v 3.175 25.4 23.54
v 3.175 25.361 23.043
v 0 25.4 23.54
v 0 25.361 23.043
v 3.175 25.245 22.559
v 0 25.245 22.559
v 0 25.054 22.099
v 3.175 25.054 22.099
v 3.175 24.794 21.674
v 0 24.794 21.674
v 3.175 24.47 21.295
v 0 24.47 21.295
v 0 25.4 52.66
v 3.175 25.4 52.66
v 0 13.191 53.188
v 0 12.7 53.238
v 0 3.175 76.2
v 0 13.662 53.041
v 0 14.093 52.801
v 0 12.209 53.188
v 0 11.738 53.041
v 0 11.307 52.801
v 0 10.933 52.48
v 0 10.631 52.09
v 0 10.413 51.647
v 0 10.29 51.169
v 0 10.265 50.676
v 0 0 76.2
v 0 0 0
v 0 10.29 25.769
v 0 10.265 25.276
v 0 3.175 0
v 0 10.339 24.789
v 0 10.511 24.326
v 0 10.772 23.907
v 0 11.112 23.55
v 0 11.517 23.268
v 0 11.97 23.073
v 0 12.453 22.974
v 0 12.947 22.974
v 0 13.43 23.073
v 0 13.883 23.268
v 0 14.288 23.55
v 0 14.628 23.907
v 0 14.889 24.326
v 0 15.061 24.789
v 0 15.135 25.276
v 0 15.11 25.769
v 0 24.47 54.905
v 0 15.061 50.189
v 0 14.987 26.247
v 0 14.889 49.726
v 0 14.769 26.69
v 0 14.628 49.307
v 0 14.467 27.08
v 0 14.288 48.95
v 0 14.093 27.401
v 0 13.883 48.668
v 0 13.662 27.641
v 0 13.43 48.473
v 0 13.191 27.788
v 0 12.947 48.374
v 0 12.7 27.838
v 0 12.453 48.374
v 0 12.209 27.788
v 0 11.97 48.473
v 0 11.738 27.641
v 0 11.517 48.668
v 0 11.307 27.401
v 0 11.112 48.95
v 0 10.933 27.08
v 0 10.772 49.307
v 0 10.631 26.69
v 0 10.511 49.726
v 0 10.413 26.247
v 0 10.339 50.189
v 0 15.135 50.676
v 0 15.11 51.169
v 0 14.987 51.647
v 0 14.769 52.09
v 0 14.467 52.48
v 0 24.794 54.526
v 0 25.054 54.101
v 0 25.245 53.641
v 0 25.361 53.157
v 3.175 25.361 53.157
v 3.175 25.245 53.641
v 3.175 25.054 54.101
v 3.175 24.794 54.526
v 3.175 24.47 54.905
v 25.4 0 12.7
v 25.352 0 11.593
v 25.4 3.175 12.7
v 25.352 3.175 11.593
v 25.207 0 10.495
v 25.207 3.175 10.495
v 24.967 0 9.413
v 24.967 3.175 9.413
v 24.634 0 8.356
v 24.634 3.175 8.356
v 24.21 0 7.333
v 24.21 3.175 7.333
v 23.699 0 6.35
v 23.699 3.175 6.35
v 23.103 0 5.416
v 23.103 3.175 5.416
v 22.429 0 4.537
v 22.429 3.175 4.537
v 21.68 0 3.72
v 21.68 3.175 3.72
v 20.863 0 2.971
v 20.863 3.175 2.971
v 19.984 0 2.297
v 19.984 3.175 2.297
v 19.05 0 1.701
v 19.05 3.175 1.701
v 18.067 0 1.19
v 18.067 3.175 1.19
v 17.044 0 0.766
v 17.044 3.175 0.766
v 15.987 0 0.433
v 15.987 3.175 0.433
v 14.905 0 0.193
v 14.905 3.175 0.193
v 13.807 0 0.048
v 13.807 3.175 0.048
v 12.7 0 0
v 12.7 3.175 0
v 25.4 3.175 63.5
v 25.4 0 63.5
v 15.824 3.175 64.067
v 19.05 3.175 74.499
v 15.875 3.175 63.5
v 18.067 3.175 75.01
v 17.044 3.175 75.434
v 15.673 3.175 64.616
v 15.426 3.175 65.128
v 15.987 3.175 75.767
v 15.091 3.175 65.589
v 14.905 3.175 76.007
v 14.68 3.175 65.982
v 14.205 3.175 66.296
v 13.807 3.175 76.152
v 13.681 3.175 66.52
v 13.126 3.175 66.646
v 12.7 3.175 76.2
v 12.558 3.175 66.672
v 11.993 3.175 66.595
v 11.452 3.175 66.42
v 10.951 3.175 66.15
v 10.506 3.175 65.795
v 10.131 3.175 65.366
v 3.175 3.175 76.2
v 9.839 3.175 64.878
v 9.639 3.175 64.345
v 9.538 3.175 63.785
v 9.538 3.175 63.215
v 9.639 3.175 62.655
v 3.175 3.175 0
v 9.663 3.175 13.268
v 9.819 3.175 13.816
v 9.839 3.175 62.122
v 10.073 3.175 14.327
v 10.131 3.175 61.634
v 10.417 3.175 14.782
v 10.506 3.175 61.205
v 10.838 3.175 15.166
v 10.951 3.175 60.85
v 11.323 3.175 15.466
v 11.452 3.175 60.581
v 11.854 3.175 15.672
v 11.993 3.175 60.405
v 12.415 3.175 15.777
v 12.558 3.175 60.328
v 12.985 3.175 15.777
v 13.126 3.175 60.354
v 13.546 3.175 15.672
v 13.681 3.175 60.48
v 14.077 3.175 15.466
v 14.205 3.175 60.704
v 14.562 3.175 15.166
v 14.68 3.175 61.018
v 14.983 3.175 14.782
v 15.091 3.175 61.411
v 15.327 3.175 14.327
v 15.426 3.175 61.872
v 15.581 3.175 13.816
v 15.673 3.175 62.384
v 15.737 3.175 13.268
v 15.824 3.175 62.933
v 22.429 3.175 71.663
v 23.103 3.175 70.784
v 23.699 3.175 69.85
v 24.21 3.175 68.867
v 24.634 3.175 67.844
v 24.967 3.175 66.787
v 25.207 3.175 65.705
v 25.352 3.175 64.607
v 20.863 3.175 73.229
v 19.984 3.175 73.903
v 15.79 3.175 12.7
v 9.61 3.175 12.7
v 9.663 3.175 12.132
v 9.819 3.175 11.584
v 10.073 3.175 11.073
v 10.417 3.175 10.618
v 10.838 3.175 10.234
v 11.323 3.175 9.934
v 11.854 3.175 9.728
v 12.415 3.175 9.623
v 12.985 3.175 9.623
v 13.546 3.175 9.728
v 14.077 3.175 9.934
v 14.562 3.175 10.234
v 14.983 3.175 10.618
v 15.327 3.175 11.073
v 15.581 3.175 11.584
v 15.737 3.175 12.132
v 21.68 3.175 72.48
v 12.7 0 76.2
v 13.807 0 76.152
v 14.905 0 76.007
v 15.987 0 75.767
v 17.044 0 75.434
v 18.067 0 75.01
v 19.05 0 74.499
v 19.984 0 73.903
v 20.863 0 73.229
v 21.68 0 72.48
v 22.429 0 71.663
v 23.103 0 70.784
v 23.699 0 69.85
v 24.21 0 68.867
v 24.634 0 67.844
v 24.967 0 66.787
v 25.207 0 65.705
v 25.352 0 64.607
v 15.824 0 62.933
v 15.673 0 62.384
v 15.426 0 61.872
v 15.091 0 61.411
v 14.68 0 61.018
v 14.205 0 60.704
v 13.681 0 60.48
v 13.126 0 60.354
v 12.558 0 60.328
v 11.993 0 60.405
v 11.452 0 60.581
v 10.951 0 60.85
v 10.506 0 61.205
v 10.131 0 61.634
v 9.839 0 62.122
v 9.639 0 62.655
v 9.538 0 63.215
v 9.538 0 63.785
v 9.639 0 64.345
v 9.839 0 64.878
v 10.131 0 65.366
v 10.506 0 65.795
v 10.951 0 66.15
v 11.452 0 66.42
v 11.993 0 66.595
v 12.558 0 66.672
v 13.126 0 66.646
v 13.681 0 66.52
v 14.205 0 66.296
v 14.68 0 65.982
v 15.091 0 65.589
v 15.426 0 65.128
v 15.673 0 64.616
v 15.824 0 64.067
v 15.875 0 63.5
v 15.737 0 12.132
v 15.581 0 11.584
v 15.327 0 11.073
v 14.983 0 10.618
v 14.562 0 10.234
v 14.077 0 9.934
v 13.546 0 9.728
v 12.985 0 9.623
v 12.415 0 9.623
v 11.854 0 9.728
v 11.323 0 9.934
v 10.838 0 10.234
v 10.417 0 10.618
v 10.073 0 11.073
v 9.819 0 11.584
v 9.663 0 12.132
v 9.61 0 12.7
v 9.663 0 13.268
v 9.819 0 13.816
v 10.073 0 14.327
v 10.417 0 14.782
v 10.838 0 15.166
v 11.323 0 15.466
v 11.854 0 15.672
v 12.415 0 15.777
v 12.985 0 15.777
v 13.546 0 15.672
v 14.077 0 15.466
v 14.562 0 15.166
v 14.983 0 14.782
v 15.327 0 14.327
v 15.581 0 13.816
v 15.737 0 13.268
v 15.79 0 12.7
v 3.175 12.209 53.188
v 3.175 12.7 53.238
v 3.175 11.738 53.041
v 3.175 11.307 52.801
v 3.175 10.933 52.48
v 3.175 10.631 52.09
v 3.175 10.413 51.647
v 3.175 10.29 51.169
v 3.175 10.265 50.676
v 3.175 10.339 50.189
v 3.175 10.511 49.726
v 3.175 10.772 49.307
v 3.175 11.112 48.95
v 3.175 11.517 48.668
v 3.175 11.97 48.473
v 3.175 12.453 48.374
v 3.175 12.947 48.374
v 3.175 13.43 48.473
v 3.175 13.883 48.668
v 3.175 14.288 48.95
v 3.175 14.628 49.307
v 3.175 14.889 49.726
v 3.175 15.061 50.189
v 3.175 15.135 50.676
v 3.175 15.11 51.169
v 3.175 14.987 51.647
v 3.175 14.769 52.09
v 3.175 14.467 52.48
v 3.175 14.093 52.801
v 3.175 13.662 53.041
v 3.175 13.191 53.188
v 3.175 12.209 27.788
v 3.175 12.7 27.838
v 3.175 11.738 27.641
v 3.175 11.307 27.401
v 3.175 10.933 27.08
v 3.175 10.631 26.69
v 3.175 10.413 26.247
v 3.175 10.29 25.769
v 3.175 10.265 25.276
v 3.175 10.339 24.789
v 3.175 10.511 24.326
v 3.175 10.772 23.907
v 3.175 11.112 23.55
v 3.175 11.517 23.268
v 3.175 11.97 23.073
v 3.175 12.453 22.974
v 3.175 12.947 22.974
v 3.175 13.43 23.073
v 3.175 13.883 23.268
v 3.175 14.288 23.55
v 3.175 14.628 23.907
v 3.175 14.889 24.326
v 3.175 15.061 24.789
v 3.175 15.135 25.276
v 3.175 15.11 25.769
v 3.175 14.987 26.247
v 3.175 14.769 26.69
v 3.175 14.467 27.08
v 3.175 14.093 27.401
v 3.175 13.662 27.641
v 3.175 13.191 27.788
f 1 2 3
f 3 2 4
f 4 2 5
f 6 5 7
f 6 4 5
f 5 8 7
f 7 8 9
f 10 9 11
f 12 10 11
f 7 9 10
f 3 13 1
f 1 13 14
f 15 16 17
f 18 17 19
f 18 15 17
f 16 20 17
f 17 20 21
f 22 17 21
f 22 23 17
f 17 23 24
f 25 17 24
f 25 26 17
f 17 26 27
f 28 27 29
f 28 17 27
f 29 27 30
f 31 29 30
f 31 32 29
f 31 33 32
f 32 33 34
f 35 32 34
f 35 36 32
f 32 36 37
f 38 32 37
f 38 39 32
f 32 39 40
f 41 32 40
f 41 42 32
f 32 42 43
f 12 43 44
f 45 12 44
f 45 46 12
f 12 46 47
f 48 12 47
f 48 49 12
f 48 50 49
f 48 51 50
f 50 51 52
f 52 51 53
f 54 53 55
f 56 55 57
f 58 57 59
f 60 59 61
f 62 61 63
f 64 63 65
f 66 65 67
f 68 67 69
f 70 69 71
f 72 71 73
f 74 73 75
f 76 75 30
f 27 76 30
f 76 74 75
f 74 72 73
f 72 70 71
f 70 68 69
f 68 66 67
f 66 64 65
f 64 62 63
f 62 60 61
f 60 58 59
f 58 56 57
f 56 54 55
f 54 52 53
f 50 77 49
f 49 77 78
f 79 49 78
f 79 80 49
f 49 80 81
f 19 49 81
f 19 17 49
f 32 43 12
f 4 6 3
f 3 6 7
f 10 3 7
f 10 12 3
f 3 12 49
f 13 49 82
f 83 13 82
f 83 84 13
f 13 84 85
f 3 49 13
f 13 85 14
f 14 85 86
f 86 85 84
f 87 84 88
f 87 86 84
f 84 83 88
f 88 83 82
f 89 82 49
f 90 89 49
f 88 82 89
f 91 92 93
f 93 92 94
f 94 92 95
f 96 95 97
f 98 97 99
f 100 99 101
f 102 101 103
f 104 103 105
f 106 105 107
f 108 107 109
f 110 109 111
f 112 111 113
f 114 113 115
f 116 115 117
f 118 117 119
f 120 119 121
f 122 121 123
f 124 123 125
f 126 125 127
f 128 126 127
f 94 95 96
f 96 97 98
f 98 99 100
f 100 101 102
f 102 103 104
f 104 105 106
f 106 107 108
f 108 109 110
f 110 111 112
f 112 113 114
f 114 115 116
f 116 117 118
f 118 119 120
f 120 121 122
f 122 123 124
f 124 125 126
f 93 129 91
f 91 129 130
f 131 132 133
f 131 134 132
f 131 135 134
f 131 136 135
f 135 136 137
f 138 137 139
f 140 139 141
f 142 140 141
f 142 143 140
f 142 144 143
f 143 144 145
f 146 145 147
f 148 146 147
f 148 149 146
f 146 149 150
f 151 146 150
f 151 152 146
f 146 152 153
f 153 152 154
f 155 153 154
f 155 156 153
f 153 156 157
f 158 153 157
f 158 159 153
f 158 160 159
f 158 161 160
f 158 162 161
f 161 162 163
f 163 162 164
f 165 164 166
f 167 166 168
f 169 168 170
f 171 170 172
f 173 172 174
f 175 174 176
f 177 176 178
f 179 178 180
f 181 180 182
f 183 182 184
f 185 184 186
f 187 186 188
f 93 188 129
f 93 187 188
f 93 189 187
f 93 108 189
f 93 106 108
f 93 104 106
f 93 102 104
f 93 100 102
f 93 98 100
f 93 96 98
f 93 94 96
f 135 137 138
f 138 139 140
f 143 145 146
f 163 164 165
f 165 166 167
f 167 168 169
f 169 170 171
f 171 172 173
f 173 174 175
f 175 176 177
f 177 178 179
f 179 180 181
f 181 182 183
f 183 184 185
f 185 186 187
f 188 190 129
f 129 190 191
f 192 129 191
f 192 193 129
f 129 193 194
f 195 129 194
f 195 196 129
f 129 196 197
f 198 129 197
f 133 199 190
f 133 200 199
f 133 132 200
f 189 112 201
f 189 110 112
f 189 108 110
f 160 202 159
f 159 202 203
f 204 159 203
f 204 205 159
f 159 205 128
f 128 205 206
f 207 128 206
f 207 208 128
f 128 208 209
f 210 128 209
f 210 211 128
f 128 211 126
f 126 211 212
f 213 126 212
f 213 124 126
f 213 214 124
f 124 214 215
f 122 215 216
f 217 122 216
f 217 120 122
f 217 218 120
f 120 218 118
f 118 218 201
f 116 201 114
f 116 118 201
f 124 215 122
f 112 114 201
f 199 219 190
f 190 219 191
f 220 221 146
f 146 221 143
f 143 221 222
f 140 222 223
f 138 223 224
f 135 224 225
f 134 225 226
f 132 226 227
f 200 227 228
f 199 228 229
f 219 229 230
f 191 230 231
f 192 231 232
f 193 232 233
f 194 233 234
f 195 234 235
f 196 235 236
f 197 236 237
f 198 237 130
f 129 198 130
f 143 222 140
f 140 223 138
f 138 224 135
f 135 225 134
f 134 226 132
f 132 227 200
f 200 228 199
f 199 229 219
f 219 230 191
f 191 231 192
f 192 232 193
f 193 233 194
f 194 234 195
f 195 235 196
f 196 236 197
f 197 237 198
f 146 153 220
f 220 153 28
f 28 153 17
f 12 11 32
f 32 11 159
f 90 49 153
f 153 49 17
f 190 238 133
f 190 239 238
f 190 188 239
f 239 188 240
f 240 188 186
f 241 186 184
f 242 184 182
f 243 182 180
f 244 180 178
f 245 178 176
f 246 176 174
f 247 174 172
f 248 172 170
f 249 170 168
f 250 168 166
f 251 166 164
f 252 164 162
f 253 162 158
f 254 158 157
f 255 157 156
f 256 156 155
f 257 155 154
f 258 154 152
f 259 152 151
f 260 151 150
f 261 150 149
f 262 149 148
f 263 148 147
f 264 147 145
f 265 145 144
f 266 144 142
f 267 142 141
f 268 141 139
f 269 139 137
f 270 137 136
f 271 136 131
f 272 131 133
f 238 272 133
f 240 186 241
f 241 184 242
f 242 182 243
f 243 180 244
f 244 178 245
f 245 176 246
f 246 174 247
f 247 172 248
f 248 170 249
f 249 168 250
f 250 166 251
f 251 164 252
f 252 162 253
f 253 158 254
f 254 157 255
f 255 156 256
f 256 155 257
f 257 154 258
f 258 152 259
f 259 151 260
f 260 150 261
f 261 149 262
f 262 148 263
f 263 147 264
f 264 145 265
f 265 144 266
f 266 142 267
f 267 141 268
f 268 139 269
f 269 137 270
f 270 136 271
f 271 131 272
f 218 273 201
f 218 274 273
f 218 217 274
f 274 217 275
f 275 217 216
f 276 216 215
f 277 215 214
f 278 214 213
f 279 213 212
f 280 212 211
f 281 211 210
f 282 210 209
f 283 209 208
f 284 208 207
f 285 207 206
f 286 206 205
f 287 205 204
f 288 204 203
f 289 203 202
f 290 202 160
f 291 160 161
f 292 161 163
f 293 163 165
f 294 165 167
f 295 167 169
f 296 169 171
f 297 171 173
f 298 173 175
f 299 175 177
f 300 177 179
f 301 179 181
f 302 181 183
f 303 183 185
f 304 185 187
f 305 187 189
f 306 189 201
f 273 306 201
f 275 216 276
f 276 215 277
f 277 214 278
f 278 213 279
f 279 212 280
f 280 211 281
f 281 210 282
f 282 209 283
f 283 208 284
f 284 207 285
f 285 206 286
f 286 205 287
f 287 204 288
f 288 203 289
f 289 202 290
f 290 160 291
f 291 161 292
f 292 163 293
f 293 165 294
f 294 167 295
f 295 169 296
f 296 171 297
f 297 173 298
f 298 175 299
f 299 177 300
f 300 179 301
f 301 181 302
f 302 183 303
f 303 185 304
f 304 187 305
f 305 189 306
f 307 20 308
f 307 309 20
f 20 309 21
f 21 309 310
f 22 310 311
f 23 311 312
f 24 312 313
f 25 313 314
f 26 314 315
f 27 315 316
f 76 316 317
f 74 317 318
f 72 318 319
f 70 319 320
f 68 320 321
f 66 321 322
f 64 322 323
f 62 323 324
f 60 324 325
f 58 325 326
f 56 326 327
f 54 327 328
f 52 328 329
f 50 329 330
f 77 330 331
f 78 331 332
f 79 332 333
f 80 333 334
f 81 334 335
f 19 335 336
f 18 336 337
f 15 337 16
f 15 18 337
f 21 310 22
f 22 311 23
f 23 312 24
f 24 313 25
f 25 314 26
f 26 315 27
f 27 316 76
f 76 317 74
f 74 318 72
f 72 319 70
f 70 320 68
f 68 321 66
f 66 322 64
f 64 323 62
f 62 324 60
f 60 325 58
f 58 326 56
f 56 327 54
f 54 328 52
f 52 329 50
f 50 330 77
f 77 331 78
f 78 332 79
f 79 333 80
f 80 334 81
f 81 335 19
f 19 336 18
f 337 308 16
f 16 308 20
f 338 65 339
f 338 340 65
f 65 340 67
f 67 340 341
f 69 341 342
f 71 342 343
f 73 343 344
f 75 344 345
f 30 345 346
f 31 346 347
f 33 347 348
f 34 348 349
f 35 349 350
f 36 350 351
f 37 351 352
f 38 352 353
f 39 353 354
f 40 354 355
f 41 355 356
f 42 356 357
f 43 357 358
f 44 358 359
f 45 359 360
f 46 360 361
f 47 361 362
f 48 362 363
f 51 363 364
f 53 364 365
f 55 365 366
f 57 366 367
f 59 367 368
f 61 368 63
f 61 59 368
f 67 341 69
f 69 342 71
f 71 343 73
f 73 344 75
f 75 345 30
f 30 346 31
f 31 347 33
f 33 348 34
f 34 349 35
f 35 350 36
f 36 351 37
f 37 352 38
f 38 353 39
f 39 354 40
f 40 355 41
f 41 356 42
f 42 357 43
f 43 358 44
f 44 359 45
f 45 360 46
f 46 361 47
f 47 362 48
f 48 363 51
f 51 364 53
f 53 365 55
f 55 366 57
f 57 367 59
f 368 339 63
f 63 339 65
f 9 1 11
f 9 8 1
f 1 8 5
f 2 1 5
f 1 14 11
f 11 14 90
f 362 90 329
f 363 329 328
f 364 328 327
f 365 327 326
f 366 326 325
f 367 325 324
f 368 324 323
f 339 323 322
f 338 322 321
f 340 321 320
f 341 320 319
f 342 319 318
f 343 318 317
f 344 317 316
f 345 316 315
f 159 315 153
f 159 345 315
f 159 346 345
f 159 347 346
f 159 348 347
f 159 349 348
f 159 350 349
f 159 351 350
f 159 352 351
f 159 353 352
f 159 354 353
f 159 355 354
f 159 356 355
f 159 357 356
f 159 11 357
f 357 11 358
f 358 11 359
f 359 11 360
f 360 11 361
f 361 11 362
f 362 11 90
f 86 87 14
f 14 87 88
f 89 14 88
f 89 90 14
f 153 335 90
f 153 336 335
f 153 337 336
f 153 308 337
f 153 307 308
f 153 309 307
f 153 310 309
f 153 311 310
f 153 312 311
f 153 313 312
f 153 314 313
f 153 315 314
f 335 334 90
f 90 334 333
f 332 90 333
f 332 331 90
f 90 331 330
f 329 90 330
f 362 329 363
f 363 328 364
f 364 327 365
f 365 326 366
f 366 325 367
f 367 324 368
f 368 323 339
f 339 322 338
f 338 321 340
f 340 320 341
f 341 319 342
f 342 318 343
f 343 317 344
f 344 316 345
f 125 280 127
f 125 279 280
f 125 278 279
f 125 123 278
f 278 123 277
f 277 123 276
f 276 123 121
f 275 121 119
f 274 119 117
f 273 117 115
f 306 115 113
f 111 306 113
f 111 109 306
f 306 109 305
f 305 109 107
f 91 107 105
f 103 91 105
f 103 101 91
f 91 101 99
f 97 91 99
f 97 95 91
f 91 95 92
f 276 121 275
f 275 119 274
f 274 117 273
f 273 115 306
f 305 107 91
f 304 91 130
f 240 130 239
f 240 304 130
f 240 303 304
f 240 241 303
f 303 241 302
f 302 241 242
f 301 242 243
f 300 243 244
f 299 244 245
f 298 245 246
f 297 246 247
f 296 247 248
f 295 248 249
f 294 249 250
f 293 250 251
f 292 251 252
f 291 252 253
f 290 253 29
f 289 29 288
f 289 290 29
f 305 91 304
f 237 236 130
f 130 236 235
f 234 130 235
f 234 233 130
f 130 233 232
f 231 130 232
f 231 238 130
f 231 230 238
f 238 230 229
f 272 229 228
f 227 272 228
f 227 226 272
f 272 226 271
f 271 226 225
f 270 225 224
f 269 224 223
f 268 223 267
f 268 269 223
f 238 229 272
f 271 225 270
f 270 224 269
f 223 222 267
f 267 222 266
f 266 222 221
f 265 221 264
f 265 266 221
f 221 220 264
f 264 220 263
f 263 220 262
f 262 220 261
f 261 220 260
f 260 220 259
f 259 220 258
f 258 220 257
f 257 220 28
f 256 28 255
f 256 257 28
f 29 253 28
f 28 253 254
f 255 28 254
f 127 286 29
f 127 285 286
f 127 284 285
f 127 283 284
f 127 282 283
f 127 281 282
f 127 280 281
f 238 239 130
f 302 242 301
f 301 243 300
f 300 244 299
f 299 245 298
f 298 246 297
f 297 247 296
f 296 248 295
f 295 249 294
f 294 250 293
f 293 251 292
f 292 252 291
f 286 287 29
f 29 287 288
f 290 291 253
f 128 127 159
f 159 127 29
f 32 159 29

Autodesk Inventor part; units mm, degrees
ref_plane "YZ Plane" through (0, 0, 0) normal (1, 0, 0) x (0, 1, 0)
ref_plane "XZ Plane" through (0, 0, 0) normal (0, 1, 0) x (-1, 0, 0)
ref_plane "XY Plane" through (0, 0, 0) normal (0, 0, 1) x (1, 0, 0)
sketch "Sketch1" plane through (0, 0, 0) normal (0, 0, 1) x (1, 0, 0)
  line L0 (0, 0) -> (0, 25.4)
  line L1 (0, 25.4) -> (3.175, 25.4)
  line L2 (3.175, 25.4) -> (3.175, 3.175)
  line L3 (3.175, 3.175) -> (25.4, 3.175)
  line L4 (25.4, 3.175) -> (25.4, 0)
  line L5 (25.4, 0) -> (0, 0)
  dimension "d0" = 3.175
  dimension "d1" = 25.4
extrude "Extrusion1" add sketch "Sketch1" along normal blind 76.2
sketch "Sketch2" plane through (0, 0, 0) normal (-1, 0, 0) x (0, 0, 1)
  line L0 (76.2, 0) -> (76.2, 25.4) projected
  line L1 (0, 0) -> (0, 25.4) projected
  line L2 (0, 12.7) -> (25.4, 12.7) construction
  line L3 (25.4, 12.7) -> (50.8, 12.7) construction
  line L4 (50.8, 12.7) -> (76.2, 12.7) construction
  circle A0 centre (25.4, 12.7) radius 2.4384
  circle A1 centre (50.8, 12.7) radius 2.4384
  dimension "d4" = 25.4
  dimension "d5" = 4.8768
extrude "Extrusion2" cut sketch "Sketch2" against normal up to next
sketch "Sketch3" plane through (0, 0, 0) normal (0, -1, 0) x (1, 0, 0)
  line L0 (25.4, 76.2) -> (0, 76.2) projected
  line L1 (25.4, 0) -> (0, 0) projected
  line L2 (12.7, 76.2) -> (12.7, 63.5) construction
  line L3 (12.7, 63.5) -> (12.7, 12.7) construction
  line L4 (12.7, 12.7) -> (12.7, 0) construction
  circle A0 centre (12.7, 63.5) radius 3.175
  circle A1 centre (12.7, 12.7) radius 3.0898
  dimension "d8" = 6.35
  dimension "d9" = 12.7
extrude "Extrusion3" cut sketch "Sketch3" against normal up to next
chamfer "Chamfer1" distance 22.225 angle 45 2 edges at (1.5875, 25.4, 76.2) (1.5875, 25.4, 0)
fillet "Fillet1" radius 12.7 2 edges at (25.4, 1.5875, 76.2) (25.4, 1.5875, 0)
fillet "Fillet2" radius 3.175 2 edges at (1.5875, 25.4, 53.975) (1.5875, 25.4, 22.225)
properties part number "BearingMountBracket" material "Aluminum-6061"
